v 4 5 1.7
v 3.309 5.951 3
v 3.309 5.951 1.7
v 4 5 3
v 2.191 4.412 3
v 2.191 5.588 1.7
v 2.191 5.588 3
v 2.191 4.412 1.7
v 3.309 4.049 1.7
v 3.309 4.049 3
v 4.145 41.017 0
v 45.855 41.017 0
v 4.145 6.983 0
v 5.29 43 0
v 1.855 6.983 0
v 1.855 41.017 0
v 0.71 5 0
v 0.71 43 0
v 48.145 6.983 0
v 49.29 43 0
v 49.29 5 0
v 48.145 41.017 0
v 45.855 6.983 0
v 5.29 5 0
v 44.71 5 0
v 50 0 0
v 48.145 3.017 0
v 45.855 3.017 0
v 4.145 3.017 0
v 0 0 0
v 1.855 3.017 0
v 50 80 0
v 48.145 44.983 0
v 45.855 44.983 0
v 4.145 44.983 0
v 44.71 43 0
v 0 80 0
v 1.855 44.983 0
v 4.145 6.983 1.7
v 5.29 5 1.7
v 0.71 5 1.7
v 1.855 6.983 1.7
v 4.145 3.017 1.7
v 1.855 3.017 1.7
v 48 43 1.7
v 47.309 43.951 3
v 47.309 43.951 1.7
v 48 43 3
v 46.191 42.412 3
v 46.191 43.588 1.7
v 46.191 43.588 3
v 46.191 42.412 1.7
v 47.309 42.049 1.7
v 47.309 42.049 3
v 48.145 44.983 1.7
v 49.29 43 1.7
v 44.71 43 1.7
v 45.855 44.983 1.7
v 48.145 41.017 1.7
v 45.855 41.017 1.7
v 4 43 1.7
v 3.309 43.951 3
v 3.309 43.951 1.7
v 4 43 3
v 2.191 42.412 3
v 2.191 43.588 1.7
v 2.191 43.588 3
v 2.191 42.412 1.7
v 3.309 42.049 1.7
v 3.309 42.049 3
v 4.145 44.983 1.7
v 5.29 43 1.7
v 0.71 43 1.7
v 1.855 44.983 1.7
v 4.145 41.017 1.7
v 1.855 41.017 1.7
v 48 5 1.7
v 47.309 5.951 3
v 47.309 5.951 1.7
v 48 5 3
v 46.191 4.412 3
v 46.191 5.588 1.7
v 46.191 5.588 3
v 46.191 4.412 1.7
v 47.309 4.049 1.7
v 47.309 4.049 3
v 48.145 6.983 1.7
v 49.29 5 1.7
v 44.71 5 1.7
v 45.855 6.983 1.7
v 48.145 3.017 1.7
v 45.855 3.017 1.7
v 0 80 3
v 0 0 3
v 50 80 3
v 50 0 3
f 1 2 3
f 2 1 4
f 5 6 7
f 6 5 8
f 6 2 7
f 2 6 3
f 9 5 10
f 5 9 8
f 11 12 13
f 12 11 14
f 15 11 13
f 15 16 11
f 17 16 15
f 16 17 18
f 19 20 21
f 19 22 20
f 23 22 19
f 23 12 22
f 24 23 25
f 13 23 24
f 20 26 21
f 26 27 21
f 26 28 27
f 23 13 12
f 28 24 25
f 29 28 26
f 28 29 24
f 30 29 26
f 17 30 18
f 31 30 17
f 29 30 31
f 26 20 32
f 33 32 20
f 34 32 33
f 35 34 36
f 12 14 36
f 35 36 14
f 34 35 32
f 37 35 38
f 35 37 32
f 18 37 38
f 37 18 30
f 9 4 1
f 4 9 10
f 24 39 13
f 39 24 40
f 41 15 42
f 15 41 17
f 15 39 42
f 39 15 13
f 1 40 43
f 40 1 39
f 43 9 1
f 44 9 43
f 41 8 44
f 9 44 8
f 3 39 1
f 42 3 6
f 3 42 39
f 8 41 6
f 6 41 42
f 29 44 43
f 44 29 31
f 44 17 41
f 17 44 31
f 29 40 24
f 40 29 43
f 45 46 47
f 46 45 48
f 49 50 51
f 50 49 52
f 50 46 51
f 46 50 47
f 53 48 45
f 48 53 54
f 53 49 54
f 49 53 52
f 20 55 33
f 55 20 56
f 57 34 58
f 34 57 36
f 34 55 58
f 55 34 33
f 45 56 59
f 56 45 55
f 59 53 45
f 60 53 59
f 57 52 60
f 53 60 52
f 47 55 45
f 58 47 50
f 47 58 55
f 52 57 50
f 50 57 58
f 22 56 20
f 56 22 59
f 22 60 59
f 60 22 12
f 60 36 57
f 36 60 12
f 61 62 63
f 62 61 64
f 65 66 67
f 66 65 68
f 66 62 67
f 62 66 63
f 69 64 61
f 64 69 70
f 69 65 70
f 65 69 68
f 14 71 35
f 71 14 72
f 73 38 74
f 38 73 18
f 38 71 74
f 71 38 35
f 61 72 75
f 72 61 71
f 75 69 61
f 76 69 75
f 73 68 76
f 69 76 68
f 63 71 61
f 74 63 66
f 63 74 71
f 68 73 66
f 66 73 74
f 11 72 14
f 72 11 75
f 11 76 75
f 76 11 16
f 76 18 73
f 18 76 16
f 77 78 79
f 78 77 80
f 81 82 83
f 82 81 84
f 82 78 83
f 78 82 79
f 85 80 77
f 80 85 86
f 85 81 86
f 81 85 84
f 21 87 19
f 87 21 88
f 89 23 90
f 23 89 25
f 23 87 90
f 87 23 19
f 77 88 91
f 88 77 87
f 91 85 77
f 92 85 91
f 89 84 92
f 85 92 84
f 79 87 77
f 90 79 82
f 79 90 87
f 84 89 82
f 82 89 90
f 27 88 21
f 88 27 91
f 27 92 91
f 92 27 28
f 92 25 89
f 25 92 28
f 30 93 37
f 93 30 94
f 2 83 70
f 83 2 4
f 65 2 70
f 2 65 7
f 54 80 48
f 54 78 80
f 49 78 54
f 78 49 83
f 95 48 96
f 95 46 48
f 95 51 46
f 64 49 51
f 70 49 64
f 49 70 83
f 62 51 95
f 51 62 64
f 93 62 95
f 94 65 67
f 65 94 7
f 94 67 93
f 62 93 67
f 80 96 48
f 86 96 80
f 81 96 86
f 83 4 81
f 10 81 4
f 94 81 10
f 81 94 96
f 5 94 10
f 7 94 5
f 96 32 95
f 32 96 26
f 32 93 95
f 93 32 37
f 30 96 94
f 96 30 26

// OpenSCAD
use <MCAD/nuts_and_bolts.scad>;


dist_y=38;
dist_x=44;
size_x=50;
size_y=80;
thickness=3;

module neg_bit(){
    cylinder(r=1,h=30);
    nutHole(2,tolerance = 0.1);
}



module neg_set(){
    neg_bit();
translate([dist_x,dist_y,0]) neg_bit();

translate([0,dist_y,0]) neg_bit();
translate([dist_x,0,0]) neg_bit();
}


module barcode_mount(){


difference(){
    cube([size_x,size_y,thickness]);
    translate([(size_x-dist_x)/2,5,0])neg_set();

    
}};

barcode_mount();
